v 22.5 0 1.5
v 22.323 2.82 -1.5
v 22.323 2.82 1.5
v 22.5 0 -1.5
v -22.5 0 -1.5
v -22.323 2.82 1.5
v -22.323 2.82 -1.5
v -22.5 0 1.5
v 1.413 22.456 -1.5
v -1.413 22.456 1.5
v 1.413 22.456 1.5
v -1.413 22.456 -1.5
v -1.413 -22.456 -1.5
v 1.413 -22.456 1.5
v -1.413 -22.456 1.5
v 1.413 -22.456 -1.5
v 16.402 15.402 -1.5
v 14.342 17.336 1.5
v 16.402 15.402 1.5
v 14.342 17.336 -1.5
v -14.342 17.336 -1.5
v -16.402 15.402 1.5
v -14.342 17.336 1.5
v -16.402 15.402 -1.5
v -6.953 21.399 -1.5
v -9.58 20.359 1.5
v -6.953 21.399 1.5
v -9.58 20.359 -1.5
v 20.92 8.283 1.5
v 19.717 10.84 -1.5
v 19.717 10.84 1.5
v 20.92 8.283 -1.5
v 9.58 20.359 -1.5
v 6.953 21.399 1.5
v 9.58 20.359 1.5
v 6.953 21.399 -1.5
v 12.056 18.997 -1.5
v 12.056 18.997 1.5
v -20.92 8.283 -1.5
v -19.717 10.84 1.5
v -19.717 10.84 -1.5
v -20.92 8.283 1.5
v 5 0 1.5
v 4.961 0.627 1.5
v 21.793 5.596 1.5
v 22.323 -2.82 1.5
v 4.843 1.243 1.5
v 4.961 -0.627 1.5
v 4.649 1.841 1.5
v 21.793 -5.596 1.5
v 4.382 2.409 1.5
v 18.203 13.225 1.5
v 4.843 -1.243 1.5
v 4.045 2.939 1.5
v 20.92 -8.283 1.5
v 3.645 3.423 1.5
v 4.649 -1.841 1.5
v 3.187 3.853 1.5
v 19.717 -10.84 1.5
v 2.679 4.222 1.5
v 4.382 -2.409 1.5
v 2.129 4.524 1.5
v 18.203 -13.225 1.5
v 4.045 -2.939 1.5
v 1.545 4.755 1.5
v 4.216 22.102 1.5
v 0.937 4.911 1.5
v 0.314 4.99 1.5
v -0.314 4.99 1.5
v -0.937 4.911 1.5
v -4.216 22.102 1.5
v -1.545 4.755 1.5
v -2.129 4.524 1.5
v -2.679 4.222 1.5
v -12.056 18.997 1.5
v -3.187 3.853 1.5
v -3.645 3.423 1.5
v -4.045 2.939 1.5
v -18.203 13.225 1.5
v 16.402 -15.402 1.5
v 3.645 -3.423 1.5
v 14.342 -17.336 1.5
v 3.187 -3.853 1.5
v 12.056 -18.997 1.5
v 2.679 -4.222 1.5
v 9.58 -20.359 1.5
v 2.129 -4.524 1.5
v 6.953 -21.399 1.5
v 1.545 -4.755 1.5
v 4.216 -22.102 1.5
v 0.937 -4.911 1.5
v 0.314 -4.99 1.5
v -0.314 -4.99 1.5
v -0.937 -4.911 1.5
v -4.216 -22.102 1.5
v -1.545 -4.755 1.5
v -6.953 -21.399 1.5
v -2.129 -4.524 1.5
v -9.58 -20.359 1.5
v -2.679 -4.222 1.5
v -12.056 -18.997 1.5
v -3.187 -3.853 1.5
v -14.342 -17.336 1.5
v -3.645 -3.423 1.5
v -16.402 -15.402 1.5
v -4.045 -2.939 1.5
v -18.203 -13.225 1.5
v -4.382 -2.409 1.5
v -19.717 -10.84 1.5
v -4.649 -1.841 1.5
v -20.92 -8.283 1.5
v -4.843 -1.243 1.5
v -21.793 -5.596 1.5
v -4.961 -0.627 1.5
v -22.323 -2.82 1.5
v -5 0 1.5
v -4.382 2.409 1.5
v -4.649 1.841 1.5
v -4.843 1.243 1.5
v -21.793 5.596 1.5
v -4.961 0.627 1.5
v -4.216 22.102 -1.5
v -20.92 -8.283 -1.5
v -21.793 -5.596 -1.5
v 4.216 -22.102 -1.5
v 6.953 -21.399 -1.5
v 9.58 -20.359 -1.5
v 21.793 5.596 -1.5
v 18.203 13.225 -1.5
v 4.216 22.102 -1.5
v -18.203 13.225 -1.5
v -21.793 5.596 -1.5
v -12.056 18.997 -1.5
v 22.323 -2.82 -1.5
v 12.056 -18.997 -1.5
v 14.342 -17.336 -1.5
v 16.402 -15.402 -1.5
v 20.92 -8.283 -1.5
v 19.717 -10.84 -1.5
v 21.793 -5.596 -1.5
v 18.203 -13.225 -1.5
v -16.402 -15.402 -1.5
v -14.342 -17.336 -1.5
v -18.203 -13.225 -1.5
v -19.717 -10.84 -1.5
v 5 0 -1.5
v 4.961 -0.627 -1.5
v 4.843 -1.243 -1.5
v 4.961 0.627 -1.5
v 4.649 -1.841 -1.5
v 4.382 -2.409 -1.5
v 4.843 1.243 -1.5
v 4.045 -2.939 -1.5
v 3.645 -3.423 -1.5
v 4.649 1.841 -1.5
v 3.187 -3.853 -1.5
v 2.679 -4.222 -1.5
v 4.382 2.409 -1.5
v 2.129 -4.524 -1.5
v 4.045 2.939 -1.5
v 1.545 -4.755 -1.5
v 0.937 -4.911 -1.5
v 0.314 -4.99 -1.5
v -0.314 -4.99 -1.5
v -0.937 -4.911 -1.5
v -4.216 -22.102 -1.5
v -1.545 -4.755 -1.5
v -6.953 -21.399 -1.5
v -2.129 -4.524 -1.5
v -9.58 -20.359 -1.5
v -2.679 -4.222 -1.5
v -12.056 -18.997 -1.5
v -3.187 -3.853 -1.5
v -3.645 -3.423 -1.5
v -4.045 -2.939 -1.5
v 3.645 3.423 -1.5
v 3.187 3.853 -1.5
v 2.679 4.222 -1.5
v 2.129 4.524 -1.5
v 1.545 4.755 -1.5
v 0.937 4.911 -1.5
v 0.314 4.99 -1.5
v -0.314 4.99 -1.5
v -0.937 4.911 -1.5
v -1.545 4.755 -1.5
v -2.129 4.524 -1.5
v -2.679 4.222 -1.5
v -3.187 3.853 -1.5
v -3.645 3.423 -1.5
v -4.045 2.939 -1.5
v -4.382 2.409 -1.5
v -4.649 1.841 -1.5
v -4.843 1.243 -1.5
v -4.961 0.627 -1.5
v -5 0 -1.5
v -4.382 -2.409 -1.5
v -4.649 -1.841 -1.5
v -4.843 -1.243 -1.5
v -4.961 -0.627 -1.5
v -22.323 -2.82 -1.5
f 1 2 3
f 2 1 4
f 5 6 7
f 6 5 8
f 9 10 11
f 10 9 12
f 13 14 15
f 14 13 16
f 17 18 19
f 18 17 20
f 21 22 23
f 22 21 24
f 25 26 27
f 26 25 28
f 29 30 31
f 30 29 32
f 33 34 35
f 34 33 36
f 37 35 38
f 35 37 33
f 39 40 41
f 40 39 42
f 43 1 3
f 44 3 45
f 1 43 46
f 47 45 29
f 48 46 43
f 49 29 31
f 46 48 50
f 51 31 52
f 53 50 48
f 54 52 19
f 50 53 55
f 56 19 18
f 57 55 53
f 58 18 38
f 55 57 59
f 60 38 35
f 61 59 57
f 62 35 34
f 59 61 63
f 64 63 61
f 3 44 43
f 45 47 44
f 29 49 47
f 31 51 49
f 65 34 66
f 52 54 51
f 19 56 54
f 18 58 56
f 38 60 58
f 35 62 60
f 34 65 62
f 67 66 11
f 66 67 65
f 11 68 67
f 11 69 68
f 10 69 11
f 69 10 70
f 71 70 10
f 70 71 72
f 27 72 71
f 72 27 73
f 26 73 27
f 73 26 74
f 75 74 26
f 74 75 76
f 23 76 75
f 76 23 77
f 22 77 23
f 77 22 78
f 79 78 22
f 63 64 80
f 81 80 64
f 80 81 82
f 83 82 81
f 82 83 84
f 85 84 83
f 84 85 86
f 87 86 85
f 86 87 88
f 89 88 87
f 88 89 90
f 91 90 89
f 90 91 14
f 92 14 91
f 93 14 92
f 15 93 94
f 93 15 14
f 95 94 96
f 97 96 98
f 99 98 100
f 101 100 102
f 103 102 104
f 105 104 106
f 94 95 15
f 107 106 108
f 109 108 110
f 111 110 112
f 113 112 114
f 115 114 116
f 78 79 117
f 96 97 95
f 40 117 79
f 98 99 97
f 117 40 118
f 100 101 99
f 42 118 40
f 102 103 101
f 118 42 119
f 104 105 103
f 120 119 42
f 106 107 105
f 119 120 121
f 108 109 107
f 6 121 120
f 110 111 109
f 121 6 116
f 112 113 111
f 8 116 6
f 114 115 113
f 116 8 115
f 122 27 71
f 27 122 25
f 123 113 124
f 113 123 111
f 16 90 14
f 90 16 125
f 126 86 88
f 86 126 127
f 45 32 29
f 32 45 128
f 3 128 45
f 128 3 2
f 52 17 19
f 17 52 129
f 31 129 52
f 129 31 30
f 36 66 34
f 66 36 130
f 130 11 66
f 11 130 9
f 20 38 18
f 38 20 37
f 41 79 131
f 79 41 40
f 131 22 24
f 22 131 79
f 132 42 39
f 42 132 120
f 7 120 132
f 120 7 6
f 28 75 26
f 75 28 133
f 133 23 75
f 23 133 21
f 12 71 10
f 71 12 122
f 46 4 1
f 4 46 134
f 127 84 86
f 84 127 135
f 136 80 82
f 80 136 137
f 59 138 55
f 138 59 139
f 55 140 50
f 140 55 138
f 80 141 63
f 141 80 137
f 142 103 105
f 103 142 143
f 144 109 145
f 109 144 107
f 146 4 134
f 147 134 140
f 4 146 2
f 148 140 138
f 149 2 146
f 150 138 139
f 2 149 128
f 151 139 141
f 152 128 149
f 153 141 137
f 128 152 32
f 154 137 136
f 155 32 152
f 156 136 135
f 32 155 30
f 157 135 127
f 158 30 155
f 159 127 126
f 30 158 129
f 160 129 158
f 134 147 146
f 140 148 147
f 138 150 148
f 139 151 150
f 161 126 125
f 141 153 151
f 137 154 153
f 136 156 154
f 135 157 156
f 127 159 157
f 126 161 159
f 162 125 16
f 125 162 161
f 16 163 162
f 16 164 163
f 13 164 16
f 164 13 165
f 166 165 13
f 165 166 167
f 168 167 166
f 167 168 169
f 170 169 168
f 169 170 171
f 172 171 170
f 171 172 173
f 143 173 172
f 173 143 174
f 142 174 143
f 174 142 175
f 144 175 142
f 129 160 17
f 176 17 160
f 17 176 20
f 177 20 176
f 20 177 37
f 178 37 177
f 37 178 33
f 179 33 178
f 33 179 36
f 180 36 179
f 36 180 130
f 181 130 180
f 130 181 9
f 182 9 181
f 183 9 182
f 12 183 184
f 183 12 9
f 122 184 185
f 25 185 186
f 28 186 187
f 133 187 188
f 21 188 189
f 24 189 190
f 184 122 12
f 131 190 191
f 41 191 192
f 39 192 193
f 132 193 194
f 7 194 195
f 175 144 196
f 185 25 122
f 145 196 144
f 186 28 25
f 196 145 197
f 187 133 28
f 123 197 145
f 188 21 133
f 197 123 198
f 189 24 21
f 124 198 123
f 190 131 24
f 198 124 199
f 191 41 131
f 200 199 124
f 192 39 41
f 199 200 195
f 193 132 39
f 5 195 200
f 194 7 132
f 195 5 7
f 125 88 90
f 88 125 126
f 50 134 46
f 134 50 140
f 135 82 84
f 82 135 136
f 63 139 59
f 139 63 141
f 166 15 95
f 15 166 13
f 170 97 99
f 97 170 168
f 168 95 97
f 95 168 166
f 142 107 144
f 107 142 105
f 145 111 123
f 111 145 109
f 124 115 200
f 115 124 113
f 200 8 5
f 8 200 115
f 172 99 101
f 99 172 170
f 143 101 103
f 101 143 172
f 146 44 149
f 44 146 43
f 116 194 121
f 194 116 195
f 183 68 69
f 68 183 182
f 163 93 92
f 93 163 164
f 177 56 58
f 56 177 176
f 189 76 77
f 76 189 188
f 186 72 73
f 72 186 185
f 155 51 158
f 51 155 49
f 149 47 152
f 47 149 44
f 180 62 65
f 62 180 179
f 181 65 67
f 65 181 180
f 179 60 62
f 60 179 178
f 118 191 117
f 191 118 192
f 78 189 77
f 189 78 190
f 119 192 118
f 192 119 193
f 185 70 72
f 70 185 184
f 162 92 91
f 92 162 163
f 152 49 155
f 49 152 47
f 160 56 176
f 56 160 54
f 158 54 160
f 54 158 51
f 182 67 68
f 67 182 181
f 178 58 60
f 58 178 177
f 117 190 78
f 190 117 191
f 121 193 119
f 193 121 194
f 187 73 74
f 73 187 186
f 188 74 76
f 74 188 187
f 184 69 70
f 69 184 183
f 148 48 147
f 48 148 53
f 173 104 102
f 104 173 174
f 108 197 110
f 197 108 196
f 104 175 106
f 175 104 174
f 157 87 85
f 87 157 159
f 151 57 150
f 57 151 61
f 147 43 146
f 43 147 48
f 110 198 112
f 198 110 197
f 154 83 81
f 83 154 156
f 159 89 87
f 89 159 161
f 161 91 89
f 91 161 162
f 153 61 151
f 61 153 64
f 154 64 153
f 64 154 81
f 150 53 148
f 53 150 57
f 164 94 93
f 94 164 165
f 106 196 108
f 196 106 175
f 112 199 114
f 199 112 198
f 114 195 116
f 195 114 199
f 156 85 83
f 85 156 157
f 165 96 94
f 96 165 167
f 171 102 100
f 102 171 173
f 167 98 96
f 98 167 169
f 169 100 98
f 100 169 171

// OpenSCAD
$fn = 50;


difference() {
	union() {
		translate(v = [0, 0, -1.5000000000]) {
			cylinder(h = 3, r = 22.5000000000);
		}
	}
	union() {
		translate(v = [0, 0, -100.0000000000]) {
			cylinder(h = 200, r = 5);
		}
	}
}
